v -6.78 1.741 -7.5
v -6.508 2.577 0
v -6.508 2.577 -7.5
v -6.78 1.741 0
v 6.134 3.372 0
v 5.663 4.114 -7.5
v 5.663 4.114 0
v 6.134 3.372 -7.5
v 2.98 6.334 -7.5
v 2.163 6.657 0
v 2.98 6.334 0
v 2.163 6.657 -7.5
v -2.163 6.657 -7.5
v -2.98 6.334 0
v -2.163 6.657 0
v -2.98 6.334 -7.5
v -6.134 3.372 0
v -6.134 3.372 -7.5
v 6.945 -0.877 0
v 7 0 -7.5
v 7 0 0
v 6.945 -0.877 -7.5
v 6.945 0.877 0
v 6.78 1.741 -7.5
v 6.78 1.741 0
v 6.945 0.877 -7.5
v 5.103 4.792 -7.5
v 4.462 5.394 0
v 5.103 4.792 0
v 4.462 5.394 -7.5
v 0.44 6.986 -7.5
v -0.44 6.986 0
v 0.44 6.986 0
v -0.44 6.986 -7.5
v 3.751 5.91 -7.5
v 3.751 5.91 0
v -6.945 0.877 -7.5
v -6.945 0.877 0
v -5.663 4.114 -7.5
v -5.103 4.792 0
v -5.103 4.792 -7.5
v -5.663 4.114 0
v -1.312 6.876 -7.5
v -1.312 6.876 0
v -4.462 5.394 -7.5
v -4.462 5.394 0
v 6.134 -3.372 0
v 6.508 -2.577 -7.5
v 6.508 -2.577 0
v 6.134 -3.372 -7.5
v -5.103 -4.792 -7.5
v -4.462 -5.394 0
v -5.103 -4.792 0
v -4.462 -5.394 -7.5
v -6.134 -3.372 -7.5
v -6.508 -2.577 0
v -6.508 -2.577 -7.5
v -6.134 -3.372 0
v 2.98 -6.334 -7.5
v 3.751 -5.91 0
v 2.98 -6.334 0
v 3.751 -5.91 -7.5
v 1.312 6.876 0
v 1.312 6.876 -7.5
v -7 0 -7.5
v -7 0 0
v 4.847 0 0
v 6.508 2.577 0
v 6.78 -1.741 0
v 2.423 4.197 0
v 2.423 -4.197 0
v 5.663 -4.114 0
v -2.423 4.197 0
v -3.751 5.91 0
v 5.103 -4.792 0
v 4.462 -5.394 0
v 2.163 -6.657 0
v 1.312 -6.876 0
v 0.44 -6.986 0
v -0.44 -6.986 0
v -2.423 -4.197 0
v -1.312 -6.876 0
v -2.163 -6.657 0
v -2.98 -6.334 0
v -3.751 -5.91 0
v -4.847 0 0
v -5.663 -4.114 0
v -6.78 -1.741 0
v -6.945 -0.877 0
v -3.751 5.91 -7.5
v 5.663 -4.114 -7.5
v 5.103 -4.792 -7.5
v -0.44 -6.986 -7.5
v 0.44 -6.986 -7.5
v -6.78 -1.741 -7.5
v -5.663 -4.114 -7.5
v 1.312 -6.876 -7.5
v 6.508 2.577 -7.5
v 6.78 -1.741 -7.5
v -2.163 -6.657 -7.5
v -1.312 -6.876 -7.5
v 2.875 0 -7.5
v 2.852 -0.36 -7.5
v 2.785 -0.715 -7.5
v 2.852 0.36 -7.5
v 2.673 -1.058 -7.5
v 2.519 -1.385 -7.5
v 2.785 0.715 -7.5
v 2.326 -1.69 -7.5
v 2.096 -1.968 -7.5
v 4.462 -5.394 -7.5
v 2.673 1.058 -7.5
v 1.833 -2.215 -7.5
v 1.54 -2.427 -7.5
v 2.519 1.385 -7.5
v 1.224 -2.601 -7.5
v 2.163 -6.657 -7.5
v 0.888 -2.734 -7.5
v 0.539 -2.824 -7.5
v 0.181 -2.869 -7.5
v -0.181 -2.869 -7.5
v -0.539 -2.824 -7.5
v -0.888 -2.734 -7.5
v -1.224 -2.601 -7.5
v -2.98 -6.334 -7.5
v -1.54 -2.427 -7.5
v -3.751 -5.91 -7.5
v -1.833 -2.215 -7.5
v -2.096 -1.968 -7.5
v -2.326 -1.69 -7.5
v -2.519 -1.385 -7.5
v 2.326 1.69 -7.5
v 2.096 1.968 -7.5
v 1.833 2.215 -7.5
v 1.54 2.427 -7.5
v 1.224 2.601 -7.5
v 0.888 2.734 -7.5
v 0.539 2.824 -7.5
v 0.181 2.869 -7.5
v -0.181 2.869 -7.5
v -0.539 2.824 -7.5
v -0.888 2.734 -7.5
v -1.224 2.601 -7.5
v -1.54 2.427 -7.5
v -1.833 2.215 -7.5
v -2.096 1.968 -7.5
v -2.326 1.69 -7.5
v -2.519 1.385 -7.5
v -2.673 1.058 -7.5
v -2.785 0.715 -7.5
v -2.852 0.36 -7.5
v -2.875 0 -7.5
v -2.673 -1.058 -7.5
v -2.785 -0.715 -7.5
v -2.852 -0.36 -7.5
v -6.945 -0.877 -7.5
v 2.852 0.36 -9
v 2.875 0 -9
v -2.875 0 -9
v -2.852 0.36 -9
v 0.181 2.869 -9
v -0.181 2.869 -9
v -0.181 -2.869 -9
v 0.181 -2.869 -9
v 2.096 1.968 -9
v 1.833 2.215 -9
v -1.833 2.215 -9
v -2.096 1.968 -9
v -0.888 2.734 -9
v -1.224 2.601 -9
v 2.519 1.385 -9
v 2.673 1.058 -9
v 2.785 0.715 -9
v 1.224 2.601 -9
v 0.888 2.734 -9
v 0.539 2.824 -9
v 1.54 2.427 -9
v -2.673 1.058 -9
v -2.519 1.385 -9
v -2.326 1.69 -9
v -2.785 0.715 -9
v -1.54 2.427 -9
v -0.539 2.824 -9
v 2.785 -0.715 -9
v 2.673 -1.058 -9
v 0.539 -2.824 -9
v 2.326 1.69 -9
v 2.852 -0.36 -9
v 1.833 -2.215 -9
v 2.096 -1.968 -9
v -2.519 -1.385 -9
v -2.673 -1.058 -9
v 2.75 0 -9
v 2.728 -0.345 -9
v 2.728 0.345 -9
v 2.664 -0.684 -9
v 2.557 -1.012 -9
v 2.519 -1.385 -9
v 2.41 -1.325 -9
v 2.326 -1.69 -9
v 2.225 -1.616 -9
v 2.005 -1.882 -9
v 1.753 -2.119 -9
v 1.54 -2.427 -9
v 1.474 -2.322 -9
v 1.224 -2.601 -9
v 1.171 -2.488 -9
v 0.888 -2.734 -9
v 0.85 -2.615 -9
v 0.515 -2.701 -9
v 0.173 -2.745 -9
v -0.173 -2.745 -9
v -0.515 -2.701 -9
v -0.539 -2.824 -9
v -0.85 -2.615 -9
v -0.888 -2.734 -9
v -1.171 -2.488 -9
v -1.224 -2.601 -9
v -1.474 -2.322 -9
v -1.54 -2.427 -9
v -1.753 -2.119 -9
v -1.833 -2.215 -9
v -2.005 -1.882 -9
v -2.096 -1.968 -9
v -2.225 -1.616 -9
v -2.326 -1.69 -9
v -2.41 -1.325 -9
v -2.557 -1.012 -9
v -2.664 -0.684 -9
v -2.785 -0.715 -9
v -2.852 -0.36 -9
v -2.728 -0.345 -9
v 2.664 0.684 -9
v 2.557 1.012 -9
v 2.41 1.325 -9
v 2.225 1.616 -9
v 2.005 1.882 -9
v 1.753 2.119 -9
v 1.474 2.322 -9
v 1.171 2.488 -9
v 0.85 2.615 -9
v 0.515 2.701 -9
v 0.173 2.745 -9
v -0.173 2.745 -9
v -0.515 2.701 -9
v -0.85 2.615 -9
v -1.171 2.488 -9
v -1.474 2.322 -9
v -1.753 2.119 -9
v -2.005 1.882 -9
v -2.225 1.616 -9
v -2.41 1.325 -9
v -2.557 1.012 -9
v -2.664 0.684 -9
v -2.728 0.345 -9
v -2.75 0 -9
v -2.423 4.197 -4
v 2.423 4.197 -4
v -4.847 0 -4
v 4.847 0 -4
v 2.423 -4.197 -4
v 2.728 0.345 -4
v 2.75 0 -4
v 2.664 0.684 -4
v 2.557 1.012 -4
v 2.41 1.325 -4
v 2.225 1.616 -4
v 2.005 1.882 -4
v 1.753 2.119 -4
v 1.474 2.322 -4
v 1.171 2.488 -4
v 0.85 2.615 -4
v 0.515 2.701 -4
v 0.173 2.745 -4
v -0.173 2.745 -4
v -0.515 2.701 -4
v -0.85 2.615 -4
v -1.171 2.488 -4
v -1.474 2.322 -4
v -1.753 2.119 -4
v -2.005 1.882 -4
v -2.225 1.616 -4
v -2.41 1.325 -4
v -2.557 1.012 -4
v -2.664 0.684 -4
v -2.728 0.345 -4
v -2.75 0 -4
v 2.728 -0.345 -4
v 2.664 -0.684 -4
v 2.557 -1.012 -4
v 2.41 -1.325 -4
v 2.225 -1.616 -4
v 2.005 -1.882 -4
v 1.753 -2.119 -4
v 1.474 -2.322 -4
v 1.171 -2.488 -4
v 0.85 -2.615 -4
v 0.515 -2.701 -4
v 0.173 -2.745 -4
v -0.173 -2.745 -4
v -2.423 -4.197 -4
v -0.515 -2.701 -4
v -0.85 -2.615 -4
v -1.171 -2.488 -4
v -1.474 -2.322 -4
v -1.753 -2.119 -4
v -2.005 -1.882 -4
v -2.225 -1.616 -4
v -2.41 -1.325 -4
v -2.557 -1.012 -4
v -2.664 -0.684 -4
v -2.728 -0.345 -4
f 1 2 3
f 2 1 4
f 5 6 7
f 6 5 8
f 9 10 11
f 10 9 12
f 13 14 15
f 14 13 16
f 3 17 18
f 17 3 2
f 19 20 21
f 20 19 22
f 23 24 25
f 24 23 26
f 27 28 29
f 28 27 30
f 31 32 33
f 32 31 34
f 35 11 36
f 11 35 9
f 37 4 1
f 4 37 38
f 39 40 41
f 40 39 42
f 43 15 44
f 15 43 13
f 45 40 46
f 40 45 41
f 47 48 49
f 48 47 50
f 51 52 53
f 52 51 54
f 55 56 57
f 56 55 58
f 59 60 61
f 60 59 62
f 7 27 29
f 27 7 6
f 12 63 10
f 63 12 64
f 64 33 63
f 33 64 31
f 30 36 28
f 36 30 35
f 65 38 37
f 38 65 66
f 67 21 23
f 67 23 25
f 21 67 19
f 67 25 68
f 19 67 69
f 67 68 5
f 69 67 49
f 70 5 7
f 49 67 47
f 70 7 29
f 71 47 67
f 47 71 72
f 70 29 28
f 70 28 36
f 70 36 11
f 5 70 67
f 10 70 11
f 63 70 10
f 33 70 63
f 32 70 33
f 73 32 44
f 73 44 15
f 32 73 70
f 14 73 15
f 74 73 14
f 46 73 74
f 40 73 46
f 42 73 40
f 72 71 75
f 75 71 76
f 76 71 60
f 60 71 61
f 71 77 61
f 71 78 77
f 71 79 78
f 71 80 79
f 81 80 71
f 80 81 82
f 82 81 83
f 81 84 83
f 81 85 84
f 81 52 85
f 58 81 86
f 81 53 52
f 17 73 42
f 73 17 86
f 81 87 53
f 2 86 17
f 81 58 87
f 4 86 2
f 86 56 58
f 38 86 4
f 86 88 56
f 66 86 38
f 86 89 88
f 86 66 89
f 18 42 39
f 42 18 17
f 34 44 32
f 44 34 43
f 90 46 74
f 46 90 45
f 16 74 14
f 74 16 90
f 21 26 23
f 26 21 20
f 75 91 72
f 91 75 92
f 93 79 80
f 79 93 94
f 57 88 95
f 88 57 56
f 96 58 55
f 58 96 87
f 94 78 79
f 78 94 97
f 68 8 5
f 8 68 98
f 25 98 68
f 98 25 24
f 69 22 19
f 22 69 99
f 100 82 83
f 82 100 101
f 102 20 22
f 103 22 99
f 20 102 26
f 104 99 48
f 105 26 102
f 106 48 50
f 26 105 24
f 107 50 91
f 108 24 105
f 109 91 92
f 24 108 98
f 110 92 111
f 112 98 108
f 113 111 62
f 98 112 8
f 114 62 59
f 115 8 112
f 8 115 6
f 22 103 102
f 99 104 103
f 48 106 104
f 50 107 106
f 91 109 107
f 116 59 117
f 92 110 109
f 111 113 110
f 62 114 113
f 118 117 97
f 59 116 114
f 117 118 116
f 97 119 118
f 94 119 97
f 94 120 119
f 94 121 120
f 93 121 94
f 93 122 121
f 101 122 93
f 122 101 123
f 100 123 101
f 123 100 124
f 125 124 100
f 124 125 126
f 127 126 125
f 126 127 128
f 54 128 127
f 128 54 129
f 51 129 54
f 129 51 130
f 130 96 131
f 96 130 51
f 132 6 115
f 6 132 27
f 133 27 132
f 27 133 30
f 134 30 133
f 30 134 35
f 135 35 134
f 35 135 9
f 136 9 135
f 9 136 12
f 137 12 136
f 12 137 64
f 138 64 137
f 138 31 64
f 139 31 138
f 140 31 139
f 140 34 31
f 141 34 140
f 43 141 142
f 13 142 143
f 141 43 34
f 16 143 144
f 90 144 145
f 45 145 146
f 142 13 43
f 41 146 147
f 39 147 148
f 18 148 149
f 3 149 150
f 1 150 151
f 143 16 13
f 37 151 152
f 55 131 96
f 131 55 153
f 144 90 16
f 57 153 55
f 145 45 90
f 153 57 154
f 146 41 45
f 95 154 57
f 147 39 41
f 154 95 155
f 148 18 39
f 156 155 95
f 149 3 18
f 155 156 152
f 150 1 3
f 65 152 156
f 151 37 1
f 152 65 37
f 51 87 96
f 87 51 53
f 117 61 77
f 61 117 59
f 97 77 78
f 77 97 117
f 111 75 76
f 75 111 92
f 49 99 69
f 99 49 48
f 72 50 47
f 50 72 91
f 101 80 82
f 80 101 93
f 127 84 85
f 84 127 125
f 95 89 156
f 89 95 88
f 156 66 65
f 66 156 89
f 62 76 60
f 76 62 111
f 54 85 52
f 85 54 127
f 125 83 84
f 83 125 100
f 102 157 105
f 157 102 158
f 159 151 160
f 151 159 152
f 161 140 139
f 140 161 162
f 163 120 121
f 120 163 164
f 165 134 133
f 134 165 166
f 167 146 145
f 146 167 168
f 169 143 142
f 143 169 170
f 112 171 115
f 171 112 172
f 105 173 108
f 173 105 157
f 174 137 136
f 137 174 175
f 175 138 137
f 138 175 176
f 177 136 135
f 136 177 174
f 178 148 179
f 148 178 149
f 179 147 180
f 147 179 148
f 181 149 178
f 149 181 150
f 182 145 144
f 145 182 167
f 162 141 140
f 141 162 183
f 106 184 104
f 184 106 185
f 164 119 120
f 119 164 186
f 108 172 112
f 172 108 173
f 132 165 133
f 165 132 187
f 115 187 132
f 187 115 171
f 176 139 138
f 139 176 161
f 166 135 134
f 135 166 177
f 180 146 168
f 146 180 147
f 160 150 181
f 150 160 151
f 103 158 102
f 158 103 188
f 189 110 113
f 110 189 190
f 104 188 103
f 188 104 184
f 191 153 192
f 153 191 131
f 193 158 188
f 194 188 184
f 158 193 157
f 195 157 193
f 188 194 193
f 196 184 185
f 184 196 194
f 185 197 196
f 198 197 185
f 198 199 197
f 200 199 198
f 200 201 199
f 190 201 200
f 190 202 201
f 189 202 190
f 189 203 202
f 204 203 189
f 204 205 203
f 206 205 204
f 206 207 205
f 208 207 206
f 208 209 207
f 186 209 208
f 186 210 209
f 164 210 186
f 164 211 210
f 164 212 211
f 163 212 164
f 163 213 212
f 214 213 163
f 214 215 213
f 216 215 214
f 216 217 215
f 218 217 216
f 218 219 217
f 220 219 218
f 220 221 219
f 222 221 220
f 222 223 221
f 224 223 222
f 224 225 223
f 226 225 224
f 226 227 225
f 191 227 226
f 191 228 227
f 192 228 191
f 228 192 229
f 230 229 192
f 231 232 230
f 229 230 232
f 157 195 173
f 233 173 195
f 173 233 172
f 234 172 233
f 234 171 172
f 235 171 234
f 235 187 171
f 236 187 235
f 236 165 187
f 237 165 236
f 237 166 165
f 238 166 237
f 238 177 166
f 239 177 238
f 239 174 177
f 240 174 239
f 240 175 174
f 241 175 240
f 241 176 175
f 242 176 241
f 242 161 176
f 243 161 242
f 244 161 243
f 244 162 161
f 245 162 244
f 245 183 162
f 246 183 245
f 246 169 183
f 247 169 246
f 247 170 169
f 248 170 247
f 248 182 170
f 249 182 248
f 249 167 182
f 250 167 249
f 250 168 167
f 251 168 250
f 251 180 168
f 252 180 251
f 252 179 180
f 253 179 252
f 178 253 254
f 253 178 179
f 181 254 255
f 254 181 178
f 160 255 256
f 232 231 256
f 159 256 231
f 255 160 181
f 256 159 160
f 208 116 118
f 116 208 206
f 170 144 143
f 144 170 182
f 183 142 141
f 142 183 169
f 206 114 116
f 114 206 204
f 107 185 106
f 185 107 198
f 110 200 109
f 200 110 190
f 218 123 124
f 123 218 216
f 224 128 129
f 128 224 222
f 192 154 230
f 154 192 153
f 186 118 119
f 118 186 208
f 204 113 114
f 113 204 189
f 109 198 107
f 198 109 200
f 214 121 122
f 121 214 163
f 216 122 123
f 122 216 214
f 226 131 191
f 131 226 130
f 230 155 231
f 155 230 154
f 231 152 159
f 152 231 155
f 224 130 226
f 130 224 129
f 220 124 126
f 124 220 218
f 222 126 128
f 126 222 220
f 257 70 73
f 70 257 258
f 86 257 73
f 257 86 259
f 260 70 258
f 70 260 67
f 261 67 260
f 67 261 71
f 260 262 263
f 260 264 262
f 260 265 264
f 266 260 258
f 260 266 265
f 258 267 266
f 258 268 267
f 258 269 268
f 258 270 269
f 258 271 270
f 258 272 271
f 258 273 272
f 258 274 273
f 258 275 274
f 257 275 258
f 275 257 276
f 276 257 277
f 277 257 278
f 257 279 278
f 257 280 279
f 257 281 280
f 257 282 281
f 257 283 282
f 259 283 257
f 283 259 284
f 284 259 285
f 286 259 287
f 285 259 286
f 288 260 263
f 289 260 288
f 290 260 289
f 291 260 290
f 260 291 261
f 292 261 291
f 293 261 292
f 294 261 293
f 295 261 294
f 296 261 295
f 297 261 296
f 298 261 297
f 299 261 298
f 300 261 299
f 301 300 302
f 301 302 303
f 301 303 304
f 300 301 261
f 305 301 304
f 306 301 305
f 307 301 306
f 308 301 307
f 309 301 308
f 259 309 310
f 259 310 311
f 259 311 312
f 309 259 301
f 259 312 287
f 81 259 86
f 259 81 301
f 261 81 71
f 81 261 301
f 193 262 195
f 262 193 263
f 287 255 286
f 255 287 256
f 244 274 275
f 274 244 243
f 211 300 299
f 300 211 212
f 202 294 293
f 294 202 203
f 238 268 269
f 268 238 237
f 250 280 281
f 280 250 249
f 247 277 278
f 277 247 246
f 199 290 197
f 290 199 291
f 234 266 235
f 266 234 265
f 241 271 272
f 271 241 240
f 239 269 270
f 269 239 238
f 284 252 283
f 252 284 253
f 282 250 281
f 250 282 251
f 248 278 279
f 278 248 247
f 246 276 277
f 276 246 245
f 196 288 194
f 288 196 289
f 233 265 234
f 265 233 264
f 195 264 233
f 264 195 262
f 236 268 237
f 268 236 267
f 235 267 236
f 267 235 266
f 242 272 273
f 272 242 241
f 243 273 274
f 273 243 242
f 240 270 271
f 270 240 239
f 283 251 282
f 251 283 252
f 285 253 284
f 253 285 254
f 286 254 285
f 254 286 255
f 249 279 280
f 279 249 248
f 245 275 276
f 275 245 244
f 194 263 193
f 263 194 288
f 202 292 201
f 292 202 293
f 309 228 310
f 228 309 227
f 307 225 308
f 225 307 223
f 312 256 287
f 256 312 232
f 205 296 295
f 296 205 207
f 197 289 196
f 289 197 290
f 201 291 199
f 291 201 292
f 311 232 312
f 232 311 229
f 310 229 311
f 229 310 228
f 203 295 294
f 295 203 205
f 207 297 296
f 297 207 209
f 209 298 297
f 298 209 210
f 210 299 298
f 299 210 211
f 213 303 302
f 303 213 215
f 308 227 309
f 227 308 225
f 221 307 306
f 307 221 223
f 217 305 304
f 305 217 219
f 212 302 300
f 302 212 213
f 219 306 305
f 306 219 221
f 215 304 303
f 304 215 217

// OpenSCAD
$fn = 50;

difference() {
	union() {
		translate(v = [0, 0, -7.5]) {
			cylinder(h = 7.5, r = 7.0);
		}
		#translate(v = [0, 0, -9.0]) {
			cylinder(h = 9, r = 2.875);
		}
	}
	union() {
		translate(v = [0, 0, 0]) {
			rotate(a = [0, 0, 0]) {
				difference() {
					union() {
						translate(v = [0, 0, -4]) {
							linear_extrude(height = 4) {
								polygon(points = [[4.8468, 0.0], [2.4234000000000004, 4.197451927062417], [-2.423399999999999, 4.197451927062417], [-4.8468, 5.935618106107392e-16], [-2.423400000000002, -4.197451927062416], [2.423399999999997, -4.197451927062419]]);
							}
						}
					}
					union();
				}
			}
		}
		#translate(v = [0, 0, -100.0]) {
			cylinder(h = 200, r = 2.75);
		}
	}
}
